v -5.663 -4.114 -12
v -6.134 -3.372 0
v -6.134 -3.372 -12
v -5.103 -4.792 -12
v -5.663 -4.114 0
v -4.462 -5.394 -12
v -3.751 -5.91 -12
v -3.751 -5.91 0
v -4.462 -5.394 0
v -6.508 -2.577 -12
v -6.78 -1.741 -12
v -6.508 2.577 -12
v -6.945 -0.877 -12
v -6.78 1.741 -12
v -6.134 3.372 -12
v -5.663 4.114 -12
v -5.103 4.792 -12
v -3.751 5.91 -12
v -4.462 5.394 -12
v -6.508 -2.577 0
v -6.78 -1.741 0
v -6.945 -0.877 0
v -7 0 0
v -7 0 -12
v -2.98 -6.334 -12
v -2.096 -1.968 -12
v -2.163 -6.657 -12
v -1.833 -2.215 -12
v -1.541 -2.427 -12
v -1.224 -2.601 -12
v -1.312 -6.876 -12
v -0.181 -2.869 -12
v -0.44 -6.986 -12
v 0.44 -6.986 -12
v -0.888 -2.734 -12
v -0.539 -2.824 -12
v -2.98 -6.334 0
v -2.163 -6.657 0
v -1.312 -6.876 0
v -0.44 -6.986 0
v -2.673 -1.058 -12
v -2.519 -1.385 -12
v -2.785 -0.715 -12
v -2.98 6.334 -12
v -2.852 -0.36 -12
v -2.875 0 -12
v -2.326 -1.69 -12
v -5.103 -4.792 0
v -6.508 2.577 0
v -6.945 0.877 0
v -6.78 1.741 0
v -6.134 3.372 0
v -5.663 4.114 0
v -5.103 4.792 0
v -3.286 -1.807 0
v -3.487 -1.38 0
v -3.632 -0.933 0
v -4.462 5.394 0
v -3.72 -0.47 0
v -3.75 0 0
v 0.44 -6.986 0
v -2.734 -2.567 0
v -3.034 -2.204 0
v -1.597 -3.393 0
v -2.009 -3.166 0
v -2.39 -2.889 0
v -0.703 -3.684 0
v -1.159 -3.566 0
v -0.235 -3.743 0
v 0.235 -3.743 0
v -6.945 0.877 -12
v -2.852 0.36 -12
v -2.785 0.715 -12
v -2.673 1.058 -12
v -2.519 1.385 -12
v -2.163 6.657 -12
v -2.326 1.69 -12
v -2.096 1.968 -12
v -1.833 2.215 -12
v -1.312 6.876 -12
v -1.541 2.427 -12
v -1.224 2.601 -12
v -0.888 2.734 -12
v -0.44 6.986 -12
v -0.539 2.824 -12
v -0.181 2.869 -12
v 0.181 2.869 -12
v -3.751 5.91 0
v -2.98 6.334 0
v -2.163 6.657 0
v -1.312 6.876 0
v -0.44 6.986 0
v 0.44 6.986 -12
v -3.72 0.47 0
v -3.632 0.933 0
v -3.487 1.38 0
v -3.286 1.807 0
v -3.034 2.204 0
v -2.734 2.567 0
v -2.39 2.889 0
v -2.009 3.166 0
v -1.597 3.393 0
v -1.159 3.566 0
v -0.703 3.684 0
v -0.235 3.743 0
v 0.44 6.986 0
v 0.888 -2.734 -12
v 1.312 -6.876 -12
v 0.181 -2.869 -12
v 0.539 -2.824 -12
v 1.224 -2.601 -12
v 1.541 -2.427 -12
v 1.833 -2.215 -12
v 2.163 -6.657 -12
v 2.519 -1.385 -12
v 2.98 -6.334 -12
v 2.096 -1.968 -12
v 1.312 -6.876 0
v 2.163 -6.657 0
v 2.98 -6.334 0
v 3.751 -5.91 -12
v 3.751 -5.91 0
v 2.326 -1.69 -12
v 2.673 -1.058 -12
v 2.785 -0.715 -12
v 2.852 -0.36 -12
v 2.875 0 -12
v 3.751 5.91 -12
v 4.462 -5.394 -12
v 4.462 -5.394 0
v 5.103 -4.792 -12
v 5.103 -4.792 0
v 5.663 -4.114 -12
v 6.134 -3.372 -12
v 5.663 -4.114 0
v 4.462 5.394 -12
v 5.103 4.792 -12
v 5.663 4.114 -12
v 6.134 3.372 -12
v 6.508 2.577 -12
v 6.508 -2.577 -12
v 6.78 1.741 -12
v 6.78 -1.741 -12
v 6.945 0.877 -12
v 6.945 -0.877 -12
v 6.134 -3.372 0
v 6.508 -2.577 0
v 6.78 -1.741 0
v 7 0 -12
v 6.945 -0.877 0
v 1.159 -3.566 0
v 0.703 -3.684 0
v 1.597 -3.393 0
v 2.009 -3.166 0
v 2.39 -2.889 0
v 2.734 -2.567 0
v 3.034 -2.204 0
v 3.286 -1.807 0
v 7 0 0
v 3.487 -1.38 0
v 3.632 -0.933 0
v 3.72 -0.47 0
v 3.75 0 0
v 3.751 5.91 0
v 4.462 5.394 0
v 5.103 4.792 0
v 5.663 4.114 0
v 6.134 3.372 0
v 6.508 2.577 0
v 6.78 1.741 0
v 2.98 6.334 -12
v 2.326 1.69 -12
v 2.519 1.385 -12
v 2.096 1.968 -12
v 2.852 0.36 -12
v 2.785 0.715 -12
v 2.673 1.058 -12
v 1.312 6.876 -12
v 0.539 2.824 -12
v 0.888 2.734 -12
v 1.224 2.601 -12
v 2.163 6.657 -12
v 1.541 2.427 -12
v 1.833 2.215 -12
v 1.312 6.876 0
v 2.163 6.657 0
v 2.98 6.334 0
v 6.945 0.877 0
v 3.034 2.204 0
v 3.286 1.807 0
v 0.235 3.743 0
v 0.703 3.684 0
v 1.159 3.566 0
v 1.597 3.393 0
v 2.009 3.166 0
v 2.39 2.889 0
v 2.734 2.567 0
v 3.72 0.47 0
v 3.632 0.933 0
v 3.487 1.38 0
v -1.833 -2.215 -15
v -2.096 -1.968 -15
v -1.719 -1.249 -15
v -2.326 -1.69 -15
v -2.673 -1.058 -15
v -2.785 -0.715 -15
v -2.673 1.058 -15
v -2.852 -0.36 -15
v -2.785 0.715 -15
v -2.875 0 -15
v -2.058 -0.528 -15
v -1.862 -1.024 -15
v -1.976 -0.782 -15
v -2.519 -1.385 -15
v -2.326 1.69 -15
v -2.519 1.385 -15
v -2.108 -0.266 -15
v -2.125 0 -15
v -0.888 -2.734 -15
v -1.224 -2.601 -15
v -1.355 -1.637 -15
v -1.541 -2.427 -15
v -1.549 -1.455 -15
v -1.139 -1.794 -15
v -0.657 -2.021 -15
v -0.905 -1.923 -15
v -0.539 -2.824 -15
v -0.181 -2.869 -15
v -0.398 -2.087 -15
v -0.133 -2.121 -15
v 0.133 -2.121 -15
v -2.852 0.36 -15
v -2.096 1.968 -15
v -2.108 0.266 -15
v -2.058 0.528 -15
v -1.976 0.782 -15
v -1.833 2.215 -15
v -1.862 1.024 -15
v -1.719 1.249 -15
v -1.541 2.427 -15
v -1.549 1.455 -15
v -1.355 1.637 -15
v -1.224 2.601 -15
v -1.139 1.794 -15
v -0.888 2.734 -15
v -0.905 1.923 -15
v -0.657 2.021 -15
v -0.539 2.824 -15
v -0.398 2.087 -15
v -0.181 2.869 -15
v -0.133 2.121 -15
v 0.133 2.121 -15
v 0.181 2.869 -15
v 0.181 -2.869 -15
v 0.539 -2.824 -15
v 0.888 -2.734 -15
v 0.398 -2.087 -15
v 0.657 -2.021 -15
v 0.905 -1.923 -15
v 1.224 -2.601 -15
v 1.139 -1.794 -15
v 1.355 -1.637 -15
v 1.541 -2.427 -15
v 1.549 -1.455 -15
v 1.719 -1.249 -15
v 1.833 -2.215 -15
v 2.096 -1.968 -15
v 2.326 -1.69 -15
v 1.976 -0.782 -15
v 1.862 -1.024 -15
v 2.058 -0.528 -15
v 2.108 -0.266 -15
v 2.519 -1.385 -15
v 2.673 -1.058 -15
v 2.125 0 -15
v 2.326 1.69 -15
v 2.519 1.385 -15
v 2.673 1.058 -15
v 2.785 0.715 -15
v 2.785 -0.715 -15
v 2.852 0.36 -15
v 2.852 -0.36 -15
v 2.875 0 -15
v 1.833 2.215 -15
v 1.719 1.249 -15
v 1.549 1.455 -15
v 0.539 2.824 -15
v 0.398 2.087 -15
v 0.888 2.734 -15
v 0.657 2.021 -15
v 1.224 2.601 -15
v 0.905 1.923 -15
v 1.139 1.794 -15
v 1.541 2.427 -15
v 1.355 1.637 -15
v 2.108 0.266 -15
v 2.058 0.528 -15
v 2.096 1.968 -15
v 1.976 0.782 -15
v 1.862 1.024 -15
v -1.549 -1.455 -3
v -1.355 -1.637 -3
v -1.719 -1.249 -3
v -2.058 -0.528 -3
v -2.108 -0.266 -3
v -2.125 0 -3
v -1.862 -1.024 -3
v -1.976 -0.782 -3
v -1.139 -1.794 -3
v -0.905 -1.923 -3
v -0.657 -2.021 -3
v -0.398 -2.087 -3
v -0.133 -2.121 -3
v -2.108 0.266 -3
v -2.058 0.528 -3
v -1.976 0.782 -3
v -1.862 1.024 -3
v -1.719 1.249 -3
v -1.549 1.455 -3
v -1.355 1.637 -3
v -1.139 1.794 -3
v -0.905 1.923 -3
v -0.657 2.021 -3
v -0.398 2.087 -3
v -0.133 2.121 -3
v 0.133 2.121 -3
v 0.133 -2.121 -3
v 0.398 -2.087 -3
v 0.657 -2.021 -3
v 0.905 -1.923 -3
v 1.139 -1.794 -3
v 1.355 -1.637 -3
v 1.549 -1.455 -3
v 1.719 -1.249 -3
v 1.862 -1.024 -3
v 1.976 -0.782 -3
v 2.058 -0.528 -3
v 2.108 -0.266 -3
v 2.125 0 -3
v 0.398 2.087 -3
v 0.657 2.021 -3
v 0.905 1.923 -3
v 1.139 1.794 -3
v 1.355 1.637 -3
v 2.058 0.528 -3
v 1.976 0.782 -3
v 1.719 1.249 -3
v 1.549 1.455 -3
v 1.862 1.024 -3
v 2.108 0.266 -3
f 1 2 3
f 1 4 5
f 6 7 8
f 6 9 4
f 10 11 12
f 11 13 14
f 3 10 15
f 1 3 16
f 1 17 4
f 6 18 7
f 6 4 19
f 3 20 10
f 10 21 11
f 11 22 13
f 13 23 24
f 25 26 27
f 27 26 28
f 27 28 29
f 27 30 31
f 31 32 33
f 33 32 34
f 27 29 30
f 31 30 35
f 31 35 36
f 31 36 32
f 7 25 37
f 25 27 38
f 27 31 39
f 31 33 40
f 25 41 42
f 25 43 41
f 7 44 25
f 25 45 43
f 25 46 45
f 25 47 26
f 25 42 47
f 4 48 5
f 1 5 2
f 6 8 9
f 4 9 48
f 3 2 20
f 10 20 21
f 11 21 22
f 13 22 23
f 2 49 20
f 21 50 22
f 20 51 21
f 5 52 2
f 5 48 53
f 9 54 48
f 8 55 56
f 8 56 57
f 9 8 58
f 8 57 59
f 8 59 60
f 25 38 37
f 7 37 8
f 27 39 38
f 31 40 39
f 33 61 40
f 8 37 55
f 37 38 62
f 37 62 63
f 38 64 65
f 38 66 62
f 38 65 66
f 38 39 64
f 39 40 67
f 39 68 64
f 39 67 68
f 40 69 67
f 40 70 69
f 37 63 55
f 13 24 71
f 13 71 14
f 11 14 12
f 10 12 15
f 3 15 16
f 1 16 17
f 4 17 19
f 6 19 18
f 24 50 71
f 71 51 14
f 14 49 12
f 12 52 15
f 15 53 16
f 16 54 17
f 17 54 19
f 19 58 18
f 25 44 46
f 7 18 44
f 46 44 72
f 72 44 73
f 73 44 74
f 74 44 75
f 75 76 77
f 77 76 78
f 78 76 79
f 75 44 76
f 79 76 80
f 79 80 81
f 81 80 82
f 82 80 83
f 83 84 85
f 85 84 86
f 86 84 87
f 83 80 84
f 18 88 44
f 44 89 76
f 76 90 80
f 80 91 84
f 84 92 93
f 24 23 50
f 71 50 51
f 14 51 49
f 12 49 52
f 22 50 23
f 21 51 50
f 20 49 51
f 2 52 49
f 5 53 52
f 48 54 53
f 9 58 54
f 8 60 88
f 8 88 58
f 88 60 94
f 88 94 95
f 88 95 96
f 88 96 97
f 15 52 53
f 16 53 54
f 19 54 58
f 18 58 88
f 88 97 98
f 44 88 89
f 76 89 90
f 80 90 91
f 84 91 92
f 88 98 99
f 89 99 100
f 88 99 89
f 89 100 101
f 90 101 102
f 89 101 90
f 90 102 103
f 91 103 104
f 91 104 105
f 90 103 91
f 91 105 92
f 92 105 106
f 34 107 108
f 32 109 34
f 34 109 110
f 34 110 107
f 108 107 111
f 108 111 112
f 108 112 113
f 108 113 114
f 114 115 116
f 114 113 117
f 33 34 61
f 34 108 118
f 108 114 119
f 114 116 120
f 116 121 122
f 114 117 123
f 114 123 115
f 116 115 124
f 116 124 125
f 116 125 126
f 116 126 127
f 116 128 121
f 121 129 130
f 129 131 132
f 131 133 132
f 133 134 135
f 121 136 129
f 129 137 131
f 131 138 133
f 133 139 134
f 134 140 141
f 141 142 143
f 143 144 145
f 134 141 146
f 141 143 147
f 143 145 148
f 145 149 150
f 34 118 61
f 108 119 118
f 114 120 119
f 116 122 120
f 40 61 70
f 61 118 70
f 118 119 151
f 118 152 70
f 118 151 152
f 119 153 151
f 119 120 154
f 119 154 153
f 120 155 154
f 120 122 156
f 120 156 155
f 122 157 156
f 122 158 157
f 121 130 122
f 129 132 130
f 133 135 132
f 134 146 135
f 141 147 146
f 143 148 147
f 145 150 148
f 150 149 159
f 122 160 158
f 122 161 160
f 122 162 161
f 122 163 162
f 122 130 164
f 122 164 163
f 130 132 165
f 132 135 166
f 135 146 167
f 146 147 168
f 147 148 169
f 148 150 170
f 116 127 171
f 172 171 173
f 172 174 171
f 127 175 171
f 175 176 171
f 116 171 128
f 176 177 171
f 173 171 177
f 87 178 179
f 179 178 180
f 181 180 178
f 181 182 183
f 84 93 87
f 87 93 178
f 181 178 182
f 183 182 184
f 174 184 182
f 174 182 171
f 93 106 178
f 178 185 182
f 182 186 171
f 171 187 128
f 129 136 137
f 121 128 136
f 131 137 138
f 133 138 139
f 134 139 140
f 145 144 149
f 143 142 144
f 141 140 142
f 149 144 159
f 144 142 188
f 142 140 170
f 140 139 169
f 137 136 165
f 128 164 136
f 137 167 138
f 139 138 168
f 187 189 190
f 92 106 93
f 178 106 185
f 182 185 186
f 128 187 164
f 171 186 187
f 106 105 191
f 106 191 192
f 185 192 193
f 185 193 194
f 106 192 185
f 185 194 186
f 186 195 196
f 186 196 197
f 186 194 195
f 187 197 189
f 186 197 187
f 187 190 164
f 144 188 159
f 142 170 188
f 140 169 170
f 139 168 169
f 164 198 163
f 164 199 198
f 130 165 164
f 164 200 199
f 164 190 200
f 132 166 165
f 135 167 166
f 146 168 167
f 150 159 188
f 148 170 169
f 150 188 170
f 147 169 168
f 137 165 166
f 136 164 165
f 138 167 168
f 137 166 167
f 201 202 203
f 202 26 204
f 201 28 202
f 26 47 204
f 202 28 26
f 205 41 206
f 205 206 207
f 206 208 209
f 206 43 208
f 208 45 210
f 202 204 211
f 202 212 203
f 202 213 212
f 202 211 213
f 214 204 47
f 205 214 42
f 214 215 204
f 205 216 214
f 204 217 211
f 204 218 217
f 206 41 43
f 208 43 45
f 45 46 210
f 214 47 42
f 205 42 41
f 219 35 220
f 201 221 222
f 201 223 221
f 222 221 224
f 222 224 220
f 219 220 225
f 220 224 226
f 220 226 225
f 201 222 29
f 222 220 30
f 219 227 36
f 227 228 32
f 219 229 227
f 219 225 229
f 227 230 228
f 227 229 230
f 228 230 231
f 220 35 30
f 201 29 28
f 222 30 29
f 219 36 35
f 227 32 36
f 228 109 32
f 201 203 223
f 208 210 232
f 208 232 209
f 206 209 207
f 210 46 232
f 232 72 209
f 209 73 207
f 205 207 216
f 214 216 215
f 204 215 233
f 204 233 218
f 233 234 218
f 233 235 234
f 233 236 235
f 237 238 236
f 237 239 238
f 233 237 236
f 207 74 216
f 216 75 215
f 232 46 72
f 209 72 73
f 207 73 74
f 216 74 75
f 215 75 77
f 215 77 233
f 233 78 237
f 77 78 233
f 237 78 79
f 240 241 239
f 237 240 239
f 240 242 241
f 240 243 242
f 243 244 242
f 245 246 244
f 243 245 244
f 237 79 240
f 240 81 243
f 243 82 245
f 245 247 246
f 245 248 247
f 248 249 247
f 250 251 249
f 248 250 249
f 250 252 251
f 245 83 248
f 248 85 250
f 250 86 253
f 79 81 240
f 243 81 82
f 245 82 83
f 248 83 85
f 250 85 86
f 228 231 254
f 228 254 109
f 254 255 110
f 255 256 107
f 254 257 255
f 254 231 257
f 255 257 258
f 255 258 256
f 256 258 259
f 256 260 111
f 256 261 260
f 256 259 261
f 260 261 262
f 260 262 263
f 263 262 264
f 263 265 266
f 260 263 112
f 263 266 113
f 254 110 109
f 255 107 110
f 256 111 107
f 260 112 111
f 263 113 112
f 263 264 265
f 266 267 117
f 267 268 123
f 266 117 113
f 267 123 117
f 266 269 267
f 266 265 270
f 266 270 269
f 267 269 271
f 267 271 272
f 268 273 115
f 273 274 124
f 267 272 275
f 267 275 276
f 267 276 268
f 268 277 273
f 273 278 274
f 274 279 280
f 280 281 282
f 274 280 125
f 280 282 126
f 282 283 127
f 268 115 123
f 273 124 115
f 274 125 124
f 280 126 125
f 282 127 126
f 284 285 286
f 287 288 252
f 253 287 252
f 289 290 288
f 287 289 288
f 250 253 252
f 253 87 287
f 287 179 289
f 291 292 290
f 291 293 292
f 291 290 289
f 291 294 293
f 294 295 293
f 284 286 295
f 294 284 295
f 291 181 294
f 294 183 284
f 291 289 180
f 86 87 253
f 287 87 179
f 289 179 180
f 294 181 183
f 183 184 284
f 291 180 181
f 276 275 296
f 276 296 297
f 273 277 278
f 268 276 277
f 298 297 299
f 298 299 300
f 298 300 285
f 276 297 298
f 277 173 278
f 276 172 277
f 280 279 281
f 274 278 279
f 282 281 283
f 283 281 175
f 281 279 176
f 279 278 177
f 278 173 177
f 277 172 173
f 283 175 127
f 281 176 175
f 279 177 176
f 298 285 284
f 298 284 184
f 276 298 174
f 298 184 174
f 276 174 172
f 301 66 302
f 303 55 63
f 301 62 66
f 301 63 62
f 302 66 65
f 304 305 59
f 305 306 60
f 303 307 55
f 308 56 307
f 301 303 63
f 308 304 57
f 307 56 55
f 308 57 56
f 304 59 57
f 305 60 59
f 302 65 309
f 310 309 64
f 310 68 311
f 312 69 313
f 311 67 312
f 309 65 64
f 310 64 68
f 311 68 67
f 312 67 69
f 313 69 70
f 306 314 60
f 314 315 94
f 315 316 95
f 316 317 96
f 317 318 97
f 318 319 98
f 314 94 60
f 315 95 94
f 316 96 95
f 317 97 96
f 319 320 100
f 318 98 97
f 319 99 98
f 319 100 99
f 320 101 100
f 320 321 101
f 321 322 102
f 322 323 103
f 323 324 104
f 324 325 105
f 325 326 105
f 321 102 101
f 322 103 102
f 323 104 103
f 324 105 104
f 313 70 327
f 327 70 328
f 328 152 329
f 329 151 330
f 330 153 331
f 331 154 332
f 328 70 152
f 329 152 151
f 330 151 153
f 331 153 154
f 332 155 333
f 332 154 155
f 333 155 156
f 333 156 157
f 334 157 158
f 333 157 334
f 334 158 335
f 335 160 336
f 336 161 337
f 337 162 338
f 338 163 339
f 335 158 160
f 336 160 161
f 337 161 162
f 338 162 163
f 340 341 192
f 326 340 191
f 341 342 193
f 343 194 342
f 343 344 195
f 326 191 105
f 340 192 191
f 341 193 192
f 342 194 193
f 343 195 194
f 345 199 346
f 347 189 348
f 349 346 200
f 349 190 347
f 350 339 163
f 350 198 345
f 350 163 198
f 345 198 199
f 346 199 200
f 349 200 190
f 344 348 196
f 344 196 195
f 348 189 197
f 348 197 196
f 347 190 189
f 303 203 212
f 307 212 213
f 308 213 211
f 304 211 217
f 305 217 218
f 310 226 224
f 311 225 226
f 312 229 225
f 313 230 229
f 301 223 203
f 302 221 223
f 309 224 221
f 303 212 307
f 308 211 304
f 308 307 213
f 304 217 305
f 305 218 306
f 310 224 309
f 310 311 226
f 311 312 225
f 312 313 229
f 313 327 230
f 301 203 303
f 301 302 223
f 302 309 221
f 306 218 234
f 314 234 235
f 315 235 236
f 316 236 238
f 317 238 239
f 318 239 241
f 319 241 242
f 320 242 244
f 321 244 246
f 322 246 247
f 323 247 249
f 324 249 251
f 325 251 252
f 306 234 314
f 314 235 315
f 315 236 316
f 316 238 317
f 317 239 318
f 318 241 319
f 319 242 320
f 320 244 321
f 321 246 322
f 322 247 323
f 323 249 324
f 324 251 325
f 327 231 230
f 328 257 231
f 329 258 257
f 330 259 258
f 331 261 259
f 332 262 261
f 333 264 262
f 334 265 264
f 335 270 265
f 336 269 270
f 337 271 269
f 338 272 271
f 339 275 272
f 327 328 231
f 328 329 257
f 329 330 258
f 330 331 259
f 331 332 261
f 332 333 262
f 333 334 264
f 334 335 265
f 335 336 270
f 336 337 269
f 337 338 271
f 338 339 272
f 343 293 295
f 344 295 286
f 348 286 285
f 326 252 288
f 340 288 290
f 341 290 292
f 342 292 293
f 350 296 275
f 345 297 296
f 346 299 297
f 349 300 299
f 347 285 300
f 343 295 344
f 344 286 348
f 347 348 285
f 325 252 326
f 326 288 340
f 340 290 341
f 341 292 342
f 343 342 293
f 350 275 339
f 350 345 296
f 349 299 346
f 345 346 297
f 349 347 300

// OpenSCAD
$fn = 50;

difference() {
	union() {
		translate(v = [0, 0, -12.0]) {
			cylinder(h = 12, r = 7.0);
		}
		#translate(v = [0, 0, -15.0]) {
			cylinder(h = 15, r = 2.875);
		}
	}
	union() {
		translate(v = [0, 0, 0]) {
			rotate(a = [0, 0, 0]) {
				difference() {
					union() {
						translate(v = [0, 0, -15.0]) {
							cylinder(h = 15, r = 2.0);
						}
						translate(v = [0, 0, -3]) {
							cylinder(h = 3, r1 = 2.125, r2 = 3.75);
						}
						translate(v = [0, 0, -15.0]) {
							cylinder(h = 15, r = 2.125);
						}
						translate(v = [0, 0, -15.0]) {
							cylinder(h = 15, r = 2.0);
						}
					}
					union();
				}
			}
		}
	}
}
